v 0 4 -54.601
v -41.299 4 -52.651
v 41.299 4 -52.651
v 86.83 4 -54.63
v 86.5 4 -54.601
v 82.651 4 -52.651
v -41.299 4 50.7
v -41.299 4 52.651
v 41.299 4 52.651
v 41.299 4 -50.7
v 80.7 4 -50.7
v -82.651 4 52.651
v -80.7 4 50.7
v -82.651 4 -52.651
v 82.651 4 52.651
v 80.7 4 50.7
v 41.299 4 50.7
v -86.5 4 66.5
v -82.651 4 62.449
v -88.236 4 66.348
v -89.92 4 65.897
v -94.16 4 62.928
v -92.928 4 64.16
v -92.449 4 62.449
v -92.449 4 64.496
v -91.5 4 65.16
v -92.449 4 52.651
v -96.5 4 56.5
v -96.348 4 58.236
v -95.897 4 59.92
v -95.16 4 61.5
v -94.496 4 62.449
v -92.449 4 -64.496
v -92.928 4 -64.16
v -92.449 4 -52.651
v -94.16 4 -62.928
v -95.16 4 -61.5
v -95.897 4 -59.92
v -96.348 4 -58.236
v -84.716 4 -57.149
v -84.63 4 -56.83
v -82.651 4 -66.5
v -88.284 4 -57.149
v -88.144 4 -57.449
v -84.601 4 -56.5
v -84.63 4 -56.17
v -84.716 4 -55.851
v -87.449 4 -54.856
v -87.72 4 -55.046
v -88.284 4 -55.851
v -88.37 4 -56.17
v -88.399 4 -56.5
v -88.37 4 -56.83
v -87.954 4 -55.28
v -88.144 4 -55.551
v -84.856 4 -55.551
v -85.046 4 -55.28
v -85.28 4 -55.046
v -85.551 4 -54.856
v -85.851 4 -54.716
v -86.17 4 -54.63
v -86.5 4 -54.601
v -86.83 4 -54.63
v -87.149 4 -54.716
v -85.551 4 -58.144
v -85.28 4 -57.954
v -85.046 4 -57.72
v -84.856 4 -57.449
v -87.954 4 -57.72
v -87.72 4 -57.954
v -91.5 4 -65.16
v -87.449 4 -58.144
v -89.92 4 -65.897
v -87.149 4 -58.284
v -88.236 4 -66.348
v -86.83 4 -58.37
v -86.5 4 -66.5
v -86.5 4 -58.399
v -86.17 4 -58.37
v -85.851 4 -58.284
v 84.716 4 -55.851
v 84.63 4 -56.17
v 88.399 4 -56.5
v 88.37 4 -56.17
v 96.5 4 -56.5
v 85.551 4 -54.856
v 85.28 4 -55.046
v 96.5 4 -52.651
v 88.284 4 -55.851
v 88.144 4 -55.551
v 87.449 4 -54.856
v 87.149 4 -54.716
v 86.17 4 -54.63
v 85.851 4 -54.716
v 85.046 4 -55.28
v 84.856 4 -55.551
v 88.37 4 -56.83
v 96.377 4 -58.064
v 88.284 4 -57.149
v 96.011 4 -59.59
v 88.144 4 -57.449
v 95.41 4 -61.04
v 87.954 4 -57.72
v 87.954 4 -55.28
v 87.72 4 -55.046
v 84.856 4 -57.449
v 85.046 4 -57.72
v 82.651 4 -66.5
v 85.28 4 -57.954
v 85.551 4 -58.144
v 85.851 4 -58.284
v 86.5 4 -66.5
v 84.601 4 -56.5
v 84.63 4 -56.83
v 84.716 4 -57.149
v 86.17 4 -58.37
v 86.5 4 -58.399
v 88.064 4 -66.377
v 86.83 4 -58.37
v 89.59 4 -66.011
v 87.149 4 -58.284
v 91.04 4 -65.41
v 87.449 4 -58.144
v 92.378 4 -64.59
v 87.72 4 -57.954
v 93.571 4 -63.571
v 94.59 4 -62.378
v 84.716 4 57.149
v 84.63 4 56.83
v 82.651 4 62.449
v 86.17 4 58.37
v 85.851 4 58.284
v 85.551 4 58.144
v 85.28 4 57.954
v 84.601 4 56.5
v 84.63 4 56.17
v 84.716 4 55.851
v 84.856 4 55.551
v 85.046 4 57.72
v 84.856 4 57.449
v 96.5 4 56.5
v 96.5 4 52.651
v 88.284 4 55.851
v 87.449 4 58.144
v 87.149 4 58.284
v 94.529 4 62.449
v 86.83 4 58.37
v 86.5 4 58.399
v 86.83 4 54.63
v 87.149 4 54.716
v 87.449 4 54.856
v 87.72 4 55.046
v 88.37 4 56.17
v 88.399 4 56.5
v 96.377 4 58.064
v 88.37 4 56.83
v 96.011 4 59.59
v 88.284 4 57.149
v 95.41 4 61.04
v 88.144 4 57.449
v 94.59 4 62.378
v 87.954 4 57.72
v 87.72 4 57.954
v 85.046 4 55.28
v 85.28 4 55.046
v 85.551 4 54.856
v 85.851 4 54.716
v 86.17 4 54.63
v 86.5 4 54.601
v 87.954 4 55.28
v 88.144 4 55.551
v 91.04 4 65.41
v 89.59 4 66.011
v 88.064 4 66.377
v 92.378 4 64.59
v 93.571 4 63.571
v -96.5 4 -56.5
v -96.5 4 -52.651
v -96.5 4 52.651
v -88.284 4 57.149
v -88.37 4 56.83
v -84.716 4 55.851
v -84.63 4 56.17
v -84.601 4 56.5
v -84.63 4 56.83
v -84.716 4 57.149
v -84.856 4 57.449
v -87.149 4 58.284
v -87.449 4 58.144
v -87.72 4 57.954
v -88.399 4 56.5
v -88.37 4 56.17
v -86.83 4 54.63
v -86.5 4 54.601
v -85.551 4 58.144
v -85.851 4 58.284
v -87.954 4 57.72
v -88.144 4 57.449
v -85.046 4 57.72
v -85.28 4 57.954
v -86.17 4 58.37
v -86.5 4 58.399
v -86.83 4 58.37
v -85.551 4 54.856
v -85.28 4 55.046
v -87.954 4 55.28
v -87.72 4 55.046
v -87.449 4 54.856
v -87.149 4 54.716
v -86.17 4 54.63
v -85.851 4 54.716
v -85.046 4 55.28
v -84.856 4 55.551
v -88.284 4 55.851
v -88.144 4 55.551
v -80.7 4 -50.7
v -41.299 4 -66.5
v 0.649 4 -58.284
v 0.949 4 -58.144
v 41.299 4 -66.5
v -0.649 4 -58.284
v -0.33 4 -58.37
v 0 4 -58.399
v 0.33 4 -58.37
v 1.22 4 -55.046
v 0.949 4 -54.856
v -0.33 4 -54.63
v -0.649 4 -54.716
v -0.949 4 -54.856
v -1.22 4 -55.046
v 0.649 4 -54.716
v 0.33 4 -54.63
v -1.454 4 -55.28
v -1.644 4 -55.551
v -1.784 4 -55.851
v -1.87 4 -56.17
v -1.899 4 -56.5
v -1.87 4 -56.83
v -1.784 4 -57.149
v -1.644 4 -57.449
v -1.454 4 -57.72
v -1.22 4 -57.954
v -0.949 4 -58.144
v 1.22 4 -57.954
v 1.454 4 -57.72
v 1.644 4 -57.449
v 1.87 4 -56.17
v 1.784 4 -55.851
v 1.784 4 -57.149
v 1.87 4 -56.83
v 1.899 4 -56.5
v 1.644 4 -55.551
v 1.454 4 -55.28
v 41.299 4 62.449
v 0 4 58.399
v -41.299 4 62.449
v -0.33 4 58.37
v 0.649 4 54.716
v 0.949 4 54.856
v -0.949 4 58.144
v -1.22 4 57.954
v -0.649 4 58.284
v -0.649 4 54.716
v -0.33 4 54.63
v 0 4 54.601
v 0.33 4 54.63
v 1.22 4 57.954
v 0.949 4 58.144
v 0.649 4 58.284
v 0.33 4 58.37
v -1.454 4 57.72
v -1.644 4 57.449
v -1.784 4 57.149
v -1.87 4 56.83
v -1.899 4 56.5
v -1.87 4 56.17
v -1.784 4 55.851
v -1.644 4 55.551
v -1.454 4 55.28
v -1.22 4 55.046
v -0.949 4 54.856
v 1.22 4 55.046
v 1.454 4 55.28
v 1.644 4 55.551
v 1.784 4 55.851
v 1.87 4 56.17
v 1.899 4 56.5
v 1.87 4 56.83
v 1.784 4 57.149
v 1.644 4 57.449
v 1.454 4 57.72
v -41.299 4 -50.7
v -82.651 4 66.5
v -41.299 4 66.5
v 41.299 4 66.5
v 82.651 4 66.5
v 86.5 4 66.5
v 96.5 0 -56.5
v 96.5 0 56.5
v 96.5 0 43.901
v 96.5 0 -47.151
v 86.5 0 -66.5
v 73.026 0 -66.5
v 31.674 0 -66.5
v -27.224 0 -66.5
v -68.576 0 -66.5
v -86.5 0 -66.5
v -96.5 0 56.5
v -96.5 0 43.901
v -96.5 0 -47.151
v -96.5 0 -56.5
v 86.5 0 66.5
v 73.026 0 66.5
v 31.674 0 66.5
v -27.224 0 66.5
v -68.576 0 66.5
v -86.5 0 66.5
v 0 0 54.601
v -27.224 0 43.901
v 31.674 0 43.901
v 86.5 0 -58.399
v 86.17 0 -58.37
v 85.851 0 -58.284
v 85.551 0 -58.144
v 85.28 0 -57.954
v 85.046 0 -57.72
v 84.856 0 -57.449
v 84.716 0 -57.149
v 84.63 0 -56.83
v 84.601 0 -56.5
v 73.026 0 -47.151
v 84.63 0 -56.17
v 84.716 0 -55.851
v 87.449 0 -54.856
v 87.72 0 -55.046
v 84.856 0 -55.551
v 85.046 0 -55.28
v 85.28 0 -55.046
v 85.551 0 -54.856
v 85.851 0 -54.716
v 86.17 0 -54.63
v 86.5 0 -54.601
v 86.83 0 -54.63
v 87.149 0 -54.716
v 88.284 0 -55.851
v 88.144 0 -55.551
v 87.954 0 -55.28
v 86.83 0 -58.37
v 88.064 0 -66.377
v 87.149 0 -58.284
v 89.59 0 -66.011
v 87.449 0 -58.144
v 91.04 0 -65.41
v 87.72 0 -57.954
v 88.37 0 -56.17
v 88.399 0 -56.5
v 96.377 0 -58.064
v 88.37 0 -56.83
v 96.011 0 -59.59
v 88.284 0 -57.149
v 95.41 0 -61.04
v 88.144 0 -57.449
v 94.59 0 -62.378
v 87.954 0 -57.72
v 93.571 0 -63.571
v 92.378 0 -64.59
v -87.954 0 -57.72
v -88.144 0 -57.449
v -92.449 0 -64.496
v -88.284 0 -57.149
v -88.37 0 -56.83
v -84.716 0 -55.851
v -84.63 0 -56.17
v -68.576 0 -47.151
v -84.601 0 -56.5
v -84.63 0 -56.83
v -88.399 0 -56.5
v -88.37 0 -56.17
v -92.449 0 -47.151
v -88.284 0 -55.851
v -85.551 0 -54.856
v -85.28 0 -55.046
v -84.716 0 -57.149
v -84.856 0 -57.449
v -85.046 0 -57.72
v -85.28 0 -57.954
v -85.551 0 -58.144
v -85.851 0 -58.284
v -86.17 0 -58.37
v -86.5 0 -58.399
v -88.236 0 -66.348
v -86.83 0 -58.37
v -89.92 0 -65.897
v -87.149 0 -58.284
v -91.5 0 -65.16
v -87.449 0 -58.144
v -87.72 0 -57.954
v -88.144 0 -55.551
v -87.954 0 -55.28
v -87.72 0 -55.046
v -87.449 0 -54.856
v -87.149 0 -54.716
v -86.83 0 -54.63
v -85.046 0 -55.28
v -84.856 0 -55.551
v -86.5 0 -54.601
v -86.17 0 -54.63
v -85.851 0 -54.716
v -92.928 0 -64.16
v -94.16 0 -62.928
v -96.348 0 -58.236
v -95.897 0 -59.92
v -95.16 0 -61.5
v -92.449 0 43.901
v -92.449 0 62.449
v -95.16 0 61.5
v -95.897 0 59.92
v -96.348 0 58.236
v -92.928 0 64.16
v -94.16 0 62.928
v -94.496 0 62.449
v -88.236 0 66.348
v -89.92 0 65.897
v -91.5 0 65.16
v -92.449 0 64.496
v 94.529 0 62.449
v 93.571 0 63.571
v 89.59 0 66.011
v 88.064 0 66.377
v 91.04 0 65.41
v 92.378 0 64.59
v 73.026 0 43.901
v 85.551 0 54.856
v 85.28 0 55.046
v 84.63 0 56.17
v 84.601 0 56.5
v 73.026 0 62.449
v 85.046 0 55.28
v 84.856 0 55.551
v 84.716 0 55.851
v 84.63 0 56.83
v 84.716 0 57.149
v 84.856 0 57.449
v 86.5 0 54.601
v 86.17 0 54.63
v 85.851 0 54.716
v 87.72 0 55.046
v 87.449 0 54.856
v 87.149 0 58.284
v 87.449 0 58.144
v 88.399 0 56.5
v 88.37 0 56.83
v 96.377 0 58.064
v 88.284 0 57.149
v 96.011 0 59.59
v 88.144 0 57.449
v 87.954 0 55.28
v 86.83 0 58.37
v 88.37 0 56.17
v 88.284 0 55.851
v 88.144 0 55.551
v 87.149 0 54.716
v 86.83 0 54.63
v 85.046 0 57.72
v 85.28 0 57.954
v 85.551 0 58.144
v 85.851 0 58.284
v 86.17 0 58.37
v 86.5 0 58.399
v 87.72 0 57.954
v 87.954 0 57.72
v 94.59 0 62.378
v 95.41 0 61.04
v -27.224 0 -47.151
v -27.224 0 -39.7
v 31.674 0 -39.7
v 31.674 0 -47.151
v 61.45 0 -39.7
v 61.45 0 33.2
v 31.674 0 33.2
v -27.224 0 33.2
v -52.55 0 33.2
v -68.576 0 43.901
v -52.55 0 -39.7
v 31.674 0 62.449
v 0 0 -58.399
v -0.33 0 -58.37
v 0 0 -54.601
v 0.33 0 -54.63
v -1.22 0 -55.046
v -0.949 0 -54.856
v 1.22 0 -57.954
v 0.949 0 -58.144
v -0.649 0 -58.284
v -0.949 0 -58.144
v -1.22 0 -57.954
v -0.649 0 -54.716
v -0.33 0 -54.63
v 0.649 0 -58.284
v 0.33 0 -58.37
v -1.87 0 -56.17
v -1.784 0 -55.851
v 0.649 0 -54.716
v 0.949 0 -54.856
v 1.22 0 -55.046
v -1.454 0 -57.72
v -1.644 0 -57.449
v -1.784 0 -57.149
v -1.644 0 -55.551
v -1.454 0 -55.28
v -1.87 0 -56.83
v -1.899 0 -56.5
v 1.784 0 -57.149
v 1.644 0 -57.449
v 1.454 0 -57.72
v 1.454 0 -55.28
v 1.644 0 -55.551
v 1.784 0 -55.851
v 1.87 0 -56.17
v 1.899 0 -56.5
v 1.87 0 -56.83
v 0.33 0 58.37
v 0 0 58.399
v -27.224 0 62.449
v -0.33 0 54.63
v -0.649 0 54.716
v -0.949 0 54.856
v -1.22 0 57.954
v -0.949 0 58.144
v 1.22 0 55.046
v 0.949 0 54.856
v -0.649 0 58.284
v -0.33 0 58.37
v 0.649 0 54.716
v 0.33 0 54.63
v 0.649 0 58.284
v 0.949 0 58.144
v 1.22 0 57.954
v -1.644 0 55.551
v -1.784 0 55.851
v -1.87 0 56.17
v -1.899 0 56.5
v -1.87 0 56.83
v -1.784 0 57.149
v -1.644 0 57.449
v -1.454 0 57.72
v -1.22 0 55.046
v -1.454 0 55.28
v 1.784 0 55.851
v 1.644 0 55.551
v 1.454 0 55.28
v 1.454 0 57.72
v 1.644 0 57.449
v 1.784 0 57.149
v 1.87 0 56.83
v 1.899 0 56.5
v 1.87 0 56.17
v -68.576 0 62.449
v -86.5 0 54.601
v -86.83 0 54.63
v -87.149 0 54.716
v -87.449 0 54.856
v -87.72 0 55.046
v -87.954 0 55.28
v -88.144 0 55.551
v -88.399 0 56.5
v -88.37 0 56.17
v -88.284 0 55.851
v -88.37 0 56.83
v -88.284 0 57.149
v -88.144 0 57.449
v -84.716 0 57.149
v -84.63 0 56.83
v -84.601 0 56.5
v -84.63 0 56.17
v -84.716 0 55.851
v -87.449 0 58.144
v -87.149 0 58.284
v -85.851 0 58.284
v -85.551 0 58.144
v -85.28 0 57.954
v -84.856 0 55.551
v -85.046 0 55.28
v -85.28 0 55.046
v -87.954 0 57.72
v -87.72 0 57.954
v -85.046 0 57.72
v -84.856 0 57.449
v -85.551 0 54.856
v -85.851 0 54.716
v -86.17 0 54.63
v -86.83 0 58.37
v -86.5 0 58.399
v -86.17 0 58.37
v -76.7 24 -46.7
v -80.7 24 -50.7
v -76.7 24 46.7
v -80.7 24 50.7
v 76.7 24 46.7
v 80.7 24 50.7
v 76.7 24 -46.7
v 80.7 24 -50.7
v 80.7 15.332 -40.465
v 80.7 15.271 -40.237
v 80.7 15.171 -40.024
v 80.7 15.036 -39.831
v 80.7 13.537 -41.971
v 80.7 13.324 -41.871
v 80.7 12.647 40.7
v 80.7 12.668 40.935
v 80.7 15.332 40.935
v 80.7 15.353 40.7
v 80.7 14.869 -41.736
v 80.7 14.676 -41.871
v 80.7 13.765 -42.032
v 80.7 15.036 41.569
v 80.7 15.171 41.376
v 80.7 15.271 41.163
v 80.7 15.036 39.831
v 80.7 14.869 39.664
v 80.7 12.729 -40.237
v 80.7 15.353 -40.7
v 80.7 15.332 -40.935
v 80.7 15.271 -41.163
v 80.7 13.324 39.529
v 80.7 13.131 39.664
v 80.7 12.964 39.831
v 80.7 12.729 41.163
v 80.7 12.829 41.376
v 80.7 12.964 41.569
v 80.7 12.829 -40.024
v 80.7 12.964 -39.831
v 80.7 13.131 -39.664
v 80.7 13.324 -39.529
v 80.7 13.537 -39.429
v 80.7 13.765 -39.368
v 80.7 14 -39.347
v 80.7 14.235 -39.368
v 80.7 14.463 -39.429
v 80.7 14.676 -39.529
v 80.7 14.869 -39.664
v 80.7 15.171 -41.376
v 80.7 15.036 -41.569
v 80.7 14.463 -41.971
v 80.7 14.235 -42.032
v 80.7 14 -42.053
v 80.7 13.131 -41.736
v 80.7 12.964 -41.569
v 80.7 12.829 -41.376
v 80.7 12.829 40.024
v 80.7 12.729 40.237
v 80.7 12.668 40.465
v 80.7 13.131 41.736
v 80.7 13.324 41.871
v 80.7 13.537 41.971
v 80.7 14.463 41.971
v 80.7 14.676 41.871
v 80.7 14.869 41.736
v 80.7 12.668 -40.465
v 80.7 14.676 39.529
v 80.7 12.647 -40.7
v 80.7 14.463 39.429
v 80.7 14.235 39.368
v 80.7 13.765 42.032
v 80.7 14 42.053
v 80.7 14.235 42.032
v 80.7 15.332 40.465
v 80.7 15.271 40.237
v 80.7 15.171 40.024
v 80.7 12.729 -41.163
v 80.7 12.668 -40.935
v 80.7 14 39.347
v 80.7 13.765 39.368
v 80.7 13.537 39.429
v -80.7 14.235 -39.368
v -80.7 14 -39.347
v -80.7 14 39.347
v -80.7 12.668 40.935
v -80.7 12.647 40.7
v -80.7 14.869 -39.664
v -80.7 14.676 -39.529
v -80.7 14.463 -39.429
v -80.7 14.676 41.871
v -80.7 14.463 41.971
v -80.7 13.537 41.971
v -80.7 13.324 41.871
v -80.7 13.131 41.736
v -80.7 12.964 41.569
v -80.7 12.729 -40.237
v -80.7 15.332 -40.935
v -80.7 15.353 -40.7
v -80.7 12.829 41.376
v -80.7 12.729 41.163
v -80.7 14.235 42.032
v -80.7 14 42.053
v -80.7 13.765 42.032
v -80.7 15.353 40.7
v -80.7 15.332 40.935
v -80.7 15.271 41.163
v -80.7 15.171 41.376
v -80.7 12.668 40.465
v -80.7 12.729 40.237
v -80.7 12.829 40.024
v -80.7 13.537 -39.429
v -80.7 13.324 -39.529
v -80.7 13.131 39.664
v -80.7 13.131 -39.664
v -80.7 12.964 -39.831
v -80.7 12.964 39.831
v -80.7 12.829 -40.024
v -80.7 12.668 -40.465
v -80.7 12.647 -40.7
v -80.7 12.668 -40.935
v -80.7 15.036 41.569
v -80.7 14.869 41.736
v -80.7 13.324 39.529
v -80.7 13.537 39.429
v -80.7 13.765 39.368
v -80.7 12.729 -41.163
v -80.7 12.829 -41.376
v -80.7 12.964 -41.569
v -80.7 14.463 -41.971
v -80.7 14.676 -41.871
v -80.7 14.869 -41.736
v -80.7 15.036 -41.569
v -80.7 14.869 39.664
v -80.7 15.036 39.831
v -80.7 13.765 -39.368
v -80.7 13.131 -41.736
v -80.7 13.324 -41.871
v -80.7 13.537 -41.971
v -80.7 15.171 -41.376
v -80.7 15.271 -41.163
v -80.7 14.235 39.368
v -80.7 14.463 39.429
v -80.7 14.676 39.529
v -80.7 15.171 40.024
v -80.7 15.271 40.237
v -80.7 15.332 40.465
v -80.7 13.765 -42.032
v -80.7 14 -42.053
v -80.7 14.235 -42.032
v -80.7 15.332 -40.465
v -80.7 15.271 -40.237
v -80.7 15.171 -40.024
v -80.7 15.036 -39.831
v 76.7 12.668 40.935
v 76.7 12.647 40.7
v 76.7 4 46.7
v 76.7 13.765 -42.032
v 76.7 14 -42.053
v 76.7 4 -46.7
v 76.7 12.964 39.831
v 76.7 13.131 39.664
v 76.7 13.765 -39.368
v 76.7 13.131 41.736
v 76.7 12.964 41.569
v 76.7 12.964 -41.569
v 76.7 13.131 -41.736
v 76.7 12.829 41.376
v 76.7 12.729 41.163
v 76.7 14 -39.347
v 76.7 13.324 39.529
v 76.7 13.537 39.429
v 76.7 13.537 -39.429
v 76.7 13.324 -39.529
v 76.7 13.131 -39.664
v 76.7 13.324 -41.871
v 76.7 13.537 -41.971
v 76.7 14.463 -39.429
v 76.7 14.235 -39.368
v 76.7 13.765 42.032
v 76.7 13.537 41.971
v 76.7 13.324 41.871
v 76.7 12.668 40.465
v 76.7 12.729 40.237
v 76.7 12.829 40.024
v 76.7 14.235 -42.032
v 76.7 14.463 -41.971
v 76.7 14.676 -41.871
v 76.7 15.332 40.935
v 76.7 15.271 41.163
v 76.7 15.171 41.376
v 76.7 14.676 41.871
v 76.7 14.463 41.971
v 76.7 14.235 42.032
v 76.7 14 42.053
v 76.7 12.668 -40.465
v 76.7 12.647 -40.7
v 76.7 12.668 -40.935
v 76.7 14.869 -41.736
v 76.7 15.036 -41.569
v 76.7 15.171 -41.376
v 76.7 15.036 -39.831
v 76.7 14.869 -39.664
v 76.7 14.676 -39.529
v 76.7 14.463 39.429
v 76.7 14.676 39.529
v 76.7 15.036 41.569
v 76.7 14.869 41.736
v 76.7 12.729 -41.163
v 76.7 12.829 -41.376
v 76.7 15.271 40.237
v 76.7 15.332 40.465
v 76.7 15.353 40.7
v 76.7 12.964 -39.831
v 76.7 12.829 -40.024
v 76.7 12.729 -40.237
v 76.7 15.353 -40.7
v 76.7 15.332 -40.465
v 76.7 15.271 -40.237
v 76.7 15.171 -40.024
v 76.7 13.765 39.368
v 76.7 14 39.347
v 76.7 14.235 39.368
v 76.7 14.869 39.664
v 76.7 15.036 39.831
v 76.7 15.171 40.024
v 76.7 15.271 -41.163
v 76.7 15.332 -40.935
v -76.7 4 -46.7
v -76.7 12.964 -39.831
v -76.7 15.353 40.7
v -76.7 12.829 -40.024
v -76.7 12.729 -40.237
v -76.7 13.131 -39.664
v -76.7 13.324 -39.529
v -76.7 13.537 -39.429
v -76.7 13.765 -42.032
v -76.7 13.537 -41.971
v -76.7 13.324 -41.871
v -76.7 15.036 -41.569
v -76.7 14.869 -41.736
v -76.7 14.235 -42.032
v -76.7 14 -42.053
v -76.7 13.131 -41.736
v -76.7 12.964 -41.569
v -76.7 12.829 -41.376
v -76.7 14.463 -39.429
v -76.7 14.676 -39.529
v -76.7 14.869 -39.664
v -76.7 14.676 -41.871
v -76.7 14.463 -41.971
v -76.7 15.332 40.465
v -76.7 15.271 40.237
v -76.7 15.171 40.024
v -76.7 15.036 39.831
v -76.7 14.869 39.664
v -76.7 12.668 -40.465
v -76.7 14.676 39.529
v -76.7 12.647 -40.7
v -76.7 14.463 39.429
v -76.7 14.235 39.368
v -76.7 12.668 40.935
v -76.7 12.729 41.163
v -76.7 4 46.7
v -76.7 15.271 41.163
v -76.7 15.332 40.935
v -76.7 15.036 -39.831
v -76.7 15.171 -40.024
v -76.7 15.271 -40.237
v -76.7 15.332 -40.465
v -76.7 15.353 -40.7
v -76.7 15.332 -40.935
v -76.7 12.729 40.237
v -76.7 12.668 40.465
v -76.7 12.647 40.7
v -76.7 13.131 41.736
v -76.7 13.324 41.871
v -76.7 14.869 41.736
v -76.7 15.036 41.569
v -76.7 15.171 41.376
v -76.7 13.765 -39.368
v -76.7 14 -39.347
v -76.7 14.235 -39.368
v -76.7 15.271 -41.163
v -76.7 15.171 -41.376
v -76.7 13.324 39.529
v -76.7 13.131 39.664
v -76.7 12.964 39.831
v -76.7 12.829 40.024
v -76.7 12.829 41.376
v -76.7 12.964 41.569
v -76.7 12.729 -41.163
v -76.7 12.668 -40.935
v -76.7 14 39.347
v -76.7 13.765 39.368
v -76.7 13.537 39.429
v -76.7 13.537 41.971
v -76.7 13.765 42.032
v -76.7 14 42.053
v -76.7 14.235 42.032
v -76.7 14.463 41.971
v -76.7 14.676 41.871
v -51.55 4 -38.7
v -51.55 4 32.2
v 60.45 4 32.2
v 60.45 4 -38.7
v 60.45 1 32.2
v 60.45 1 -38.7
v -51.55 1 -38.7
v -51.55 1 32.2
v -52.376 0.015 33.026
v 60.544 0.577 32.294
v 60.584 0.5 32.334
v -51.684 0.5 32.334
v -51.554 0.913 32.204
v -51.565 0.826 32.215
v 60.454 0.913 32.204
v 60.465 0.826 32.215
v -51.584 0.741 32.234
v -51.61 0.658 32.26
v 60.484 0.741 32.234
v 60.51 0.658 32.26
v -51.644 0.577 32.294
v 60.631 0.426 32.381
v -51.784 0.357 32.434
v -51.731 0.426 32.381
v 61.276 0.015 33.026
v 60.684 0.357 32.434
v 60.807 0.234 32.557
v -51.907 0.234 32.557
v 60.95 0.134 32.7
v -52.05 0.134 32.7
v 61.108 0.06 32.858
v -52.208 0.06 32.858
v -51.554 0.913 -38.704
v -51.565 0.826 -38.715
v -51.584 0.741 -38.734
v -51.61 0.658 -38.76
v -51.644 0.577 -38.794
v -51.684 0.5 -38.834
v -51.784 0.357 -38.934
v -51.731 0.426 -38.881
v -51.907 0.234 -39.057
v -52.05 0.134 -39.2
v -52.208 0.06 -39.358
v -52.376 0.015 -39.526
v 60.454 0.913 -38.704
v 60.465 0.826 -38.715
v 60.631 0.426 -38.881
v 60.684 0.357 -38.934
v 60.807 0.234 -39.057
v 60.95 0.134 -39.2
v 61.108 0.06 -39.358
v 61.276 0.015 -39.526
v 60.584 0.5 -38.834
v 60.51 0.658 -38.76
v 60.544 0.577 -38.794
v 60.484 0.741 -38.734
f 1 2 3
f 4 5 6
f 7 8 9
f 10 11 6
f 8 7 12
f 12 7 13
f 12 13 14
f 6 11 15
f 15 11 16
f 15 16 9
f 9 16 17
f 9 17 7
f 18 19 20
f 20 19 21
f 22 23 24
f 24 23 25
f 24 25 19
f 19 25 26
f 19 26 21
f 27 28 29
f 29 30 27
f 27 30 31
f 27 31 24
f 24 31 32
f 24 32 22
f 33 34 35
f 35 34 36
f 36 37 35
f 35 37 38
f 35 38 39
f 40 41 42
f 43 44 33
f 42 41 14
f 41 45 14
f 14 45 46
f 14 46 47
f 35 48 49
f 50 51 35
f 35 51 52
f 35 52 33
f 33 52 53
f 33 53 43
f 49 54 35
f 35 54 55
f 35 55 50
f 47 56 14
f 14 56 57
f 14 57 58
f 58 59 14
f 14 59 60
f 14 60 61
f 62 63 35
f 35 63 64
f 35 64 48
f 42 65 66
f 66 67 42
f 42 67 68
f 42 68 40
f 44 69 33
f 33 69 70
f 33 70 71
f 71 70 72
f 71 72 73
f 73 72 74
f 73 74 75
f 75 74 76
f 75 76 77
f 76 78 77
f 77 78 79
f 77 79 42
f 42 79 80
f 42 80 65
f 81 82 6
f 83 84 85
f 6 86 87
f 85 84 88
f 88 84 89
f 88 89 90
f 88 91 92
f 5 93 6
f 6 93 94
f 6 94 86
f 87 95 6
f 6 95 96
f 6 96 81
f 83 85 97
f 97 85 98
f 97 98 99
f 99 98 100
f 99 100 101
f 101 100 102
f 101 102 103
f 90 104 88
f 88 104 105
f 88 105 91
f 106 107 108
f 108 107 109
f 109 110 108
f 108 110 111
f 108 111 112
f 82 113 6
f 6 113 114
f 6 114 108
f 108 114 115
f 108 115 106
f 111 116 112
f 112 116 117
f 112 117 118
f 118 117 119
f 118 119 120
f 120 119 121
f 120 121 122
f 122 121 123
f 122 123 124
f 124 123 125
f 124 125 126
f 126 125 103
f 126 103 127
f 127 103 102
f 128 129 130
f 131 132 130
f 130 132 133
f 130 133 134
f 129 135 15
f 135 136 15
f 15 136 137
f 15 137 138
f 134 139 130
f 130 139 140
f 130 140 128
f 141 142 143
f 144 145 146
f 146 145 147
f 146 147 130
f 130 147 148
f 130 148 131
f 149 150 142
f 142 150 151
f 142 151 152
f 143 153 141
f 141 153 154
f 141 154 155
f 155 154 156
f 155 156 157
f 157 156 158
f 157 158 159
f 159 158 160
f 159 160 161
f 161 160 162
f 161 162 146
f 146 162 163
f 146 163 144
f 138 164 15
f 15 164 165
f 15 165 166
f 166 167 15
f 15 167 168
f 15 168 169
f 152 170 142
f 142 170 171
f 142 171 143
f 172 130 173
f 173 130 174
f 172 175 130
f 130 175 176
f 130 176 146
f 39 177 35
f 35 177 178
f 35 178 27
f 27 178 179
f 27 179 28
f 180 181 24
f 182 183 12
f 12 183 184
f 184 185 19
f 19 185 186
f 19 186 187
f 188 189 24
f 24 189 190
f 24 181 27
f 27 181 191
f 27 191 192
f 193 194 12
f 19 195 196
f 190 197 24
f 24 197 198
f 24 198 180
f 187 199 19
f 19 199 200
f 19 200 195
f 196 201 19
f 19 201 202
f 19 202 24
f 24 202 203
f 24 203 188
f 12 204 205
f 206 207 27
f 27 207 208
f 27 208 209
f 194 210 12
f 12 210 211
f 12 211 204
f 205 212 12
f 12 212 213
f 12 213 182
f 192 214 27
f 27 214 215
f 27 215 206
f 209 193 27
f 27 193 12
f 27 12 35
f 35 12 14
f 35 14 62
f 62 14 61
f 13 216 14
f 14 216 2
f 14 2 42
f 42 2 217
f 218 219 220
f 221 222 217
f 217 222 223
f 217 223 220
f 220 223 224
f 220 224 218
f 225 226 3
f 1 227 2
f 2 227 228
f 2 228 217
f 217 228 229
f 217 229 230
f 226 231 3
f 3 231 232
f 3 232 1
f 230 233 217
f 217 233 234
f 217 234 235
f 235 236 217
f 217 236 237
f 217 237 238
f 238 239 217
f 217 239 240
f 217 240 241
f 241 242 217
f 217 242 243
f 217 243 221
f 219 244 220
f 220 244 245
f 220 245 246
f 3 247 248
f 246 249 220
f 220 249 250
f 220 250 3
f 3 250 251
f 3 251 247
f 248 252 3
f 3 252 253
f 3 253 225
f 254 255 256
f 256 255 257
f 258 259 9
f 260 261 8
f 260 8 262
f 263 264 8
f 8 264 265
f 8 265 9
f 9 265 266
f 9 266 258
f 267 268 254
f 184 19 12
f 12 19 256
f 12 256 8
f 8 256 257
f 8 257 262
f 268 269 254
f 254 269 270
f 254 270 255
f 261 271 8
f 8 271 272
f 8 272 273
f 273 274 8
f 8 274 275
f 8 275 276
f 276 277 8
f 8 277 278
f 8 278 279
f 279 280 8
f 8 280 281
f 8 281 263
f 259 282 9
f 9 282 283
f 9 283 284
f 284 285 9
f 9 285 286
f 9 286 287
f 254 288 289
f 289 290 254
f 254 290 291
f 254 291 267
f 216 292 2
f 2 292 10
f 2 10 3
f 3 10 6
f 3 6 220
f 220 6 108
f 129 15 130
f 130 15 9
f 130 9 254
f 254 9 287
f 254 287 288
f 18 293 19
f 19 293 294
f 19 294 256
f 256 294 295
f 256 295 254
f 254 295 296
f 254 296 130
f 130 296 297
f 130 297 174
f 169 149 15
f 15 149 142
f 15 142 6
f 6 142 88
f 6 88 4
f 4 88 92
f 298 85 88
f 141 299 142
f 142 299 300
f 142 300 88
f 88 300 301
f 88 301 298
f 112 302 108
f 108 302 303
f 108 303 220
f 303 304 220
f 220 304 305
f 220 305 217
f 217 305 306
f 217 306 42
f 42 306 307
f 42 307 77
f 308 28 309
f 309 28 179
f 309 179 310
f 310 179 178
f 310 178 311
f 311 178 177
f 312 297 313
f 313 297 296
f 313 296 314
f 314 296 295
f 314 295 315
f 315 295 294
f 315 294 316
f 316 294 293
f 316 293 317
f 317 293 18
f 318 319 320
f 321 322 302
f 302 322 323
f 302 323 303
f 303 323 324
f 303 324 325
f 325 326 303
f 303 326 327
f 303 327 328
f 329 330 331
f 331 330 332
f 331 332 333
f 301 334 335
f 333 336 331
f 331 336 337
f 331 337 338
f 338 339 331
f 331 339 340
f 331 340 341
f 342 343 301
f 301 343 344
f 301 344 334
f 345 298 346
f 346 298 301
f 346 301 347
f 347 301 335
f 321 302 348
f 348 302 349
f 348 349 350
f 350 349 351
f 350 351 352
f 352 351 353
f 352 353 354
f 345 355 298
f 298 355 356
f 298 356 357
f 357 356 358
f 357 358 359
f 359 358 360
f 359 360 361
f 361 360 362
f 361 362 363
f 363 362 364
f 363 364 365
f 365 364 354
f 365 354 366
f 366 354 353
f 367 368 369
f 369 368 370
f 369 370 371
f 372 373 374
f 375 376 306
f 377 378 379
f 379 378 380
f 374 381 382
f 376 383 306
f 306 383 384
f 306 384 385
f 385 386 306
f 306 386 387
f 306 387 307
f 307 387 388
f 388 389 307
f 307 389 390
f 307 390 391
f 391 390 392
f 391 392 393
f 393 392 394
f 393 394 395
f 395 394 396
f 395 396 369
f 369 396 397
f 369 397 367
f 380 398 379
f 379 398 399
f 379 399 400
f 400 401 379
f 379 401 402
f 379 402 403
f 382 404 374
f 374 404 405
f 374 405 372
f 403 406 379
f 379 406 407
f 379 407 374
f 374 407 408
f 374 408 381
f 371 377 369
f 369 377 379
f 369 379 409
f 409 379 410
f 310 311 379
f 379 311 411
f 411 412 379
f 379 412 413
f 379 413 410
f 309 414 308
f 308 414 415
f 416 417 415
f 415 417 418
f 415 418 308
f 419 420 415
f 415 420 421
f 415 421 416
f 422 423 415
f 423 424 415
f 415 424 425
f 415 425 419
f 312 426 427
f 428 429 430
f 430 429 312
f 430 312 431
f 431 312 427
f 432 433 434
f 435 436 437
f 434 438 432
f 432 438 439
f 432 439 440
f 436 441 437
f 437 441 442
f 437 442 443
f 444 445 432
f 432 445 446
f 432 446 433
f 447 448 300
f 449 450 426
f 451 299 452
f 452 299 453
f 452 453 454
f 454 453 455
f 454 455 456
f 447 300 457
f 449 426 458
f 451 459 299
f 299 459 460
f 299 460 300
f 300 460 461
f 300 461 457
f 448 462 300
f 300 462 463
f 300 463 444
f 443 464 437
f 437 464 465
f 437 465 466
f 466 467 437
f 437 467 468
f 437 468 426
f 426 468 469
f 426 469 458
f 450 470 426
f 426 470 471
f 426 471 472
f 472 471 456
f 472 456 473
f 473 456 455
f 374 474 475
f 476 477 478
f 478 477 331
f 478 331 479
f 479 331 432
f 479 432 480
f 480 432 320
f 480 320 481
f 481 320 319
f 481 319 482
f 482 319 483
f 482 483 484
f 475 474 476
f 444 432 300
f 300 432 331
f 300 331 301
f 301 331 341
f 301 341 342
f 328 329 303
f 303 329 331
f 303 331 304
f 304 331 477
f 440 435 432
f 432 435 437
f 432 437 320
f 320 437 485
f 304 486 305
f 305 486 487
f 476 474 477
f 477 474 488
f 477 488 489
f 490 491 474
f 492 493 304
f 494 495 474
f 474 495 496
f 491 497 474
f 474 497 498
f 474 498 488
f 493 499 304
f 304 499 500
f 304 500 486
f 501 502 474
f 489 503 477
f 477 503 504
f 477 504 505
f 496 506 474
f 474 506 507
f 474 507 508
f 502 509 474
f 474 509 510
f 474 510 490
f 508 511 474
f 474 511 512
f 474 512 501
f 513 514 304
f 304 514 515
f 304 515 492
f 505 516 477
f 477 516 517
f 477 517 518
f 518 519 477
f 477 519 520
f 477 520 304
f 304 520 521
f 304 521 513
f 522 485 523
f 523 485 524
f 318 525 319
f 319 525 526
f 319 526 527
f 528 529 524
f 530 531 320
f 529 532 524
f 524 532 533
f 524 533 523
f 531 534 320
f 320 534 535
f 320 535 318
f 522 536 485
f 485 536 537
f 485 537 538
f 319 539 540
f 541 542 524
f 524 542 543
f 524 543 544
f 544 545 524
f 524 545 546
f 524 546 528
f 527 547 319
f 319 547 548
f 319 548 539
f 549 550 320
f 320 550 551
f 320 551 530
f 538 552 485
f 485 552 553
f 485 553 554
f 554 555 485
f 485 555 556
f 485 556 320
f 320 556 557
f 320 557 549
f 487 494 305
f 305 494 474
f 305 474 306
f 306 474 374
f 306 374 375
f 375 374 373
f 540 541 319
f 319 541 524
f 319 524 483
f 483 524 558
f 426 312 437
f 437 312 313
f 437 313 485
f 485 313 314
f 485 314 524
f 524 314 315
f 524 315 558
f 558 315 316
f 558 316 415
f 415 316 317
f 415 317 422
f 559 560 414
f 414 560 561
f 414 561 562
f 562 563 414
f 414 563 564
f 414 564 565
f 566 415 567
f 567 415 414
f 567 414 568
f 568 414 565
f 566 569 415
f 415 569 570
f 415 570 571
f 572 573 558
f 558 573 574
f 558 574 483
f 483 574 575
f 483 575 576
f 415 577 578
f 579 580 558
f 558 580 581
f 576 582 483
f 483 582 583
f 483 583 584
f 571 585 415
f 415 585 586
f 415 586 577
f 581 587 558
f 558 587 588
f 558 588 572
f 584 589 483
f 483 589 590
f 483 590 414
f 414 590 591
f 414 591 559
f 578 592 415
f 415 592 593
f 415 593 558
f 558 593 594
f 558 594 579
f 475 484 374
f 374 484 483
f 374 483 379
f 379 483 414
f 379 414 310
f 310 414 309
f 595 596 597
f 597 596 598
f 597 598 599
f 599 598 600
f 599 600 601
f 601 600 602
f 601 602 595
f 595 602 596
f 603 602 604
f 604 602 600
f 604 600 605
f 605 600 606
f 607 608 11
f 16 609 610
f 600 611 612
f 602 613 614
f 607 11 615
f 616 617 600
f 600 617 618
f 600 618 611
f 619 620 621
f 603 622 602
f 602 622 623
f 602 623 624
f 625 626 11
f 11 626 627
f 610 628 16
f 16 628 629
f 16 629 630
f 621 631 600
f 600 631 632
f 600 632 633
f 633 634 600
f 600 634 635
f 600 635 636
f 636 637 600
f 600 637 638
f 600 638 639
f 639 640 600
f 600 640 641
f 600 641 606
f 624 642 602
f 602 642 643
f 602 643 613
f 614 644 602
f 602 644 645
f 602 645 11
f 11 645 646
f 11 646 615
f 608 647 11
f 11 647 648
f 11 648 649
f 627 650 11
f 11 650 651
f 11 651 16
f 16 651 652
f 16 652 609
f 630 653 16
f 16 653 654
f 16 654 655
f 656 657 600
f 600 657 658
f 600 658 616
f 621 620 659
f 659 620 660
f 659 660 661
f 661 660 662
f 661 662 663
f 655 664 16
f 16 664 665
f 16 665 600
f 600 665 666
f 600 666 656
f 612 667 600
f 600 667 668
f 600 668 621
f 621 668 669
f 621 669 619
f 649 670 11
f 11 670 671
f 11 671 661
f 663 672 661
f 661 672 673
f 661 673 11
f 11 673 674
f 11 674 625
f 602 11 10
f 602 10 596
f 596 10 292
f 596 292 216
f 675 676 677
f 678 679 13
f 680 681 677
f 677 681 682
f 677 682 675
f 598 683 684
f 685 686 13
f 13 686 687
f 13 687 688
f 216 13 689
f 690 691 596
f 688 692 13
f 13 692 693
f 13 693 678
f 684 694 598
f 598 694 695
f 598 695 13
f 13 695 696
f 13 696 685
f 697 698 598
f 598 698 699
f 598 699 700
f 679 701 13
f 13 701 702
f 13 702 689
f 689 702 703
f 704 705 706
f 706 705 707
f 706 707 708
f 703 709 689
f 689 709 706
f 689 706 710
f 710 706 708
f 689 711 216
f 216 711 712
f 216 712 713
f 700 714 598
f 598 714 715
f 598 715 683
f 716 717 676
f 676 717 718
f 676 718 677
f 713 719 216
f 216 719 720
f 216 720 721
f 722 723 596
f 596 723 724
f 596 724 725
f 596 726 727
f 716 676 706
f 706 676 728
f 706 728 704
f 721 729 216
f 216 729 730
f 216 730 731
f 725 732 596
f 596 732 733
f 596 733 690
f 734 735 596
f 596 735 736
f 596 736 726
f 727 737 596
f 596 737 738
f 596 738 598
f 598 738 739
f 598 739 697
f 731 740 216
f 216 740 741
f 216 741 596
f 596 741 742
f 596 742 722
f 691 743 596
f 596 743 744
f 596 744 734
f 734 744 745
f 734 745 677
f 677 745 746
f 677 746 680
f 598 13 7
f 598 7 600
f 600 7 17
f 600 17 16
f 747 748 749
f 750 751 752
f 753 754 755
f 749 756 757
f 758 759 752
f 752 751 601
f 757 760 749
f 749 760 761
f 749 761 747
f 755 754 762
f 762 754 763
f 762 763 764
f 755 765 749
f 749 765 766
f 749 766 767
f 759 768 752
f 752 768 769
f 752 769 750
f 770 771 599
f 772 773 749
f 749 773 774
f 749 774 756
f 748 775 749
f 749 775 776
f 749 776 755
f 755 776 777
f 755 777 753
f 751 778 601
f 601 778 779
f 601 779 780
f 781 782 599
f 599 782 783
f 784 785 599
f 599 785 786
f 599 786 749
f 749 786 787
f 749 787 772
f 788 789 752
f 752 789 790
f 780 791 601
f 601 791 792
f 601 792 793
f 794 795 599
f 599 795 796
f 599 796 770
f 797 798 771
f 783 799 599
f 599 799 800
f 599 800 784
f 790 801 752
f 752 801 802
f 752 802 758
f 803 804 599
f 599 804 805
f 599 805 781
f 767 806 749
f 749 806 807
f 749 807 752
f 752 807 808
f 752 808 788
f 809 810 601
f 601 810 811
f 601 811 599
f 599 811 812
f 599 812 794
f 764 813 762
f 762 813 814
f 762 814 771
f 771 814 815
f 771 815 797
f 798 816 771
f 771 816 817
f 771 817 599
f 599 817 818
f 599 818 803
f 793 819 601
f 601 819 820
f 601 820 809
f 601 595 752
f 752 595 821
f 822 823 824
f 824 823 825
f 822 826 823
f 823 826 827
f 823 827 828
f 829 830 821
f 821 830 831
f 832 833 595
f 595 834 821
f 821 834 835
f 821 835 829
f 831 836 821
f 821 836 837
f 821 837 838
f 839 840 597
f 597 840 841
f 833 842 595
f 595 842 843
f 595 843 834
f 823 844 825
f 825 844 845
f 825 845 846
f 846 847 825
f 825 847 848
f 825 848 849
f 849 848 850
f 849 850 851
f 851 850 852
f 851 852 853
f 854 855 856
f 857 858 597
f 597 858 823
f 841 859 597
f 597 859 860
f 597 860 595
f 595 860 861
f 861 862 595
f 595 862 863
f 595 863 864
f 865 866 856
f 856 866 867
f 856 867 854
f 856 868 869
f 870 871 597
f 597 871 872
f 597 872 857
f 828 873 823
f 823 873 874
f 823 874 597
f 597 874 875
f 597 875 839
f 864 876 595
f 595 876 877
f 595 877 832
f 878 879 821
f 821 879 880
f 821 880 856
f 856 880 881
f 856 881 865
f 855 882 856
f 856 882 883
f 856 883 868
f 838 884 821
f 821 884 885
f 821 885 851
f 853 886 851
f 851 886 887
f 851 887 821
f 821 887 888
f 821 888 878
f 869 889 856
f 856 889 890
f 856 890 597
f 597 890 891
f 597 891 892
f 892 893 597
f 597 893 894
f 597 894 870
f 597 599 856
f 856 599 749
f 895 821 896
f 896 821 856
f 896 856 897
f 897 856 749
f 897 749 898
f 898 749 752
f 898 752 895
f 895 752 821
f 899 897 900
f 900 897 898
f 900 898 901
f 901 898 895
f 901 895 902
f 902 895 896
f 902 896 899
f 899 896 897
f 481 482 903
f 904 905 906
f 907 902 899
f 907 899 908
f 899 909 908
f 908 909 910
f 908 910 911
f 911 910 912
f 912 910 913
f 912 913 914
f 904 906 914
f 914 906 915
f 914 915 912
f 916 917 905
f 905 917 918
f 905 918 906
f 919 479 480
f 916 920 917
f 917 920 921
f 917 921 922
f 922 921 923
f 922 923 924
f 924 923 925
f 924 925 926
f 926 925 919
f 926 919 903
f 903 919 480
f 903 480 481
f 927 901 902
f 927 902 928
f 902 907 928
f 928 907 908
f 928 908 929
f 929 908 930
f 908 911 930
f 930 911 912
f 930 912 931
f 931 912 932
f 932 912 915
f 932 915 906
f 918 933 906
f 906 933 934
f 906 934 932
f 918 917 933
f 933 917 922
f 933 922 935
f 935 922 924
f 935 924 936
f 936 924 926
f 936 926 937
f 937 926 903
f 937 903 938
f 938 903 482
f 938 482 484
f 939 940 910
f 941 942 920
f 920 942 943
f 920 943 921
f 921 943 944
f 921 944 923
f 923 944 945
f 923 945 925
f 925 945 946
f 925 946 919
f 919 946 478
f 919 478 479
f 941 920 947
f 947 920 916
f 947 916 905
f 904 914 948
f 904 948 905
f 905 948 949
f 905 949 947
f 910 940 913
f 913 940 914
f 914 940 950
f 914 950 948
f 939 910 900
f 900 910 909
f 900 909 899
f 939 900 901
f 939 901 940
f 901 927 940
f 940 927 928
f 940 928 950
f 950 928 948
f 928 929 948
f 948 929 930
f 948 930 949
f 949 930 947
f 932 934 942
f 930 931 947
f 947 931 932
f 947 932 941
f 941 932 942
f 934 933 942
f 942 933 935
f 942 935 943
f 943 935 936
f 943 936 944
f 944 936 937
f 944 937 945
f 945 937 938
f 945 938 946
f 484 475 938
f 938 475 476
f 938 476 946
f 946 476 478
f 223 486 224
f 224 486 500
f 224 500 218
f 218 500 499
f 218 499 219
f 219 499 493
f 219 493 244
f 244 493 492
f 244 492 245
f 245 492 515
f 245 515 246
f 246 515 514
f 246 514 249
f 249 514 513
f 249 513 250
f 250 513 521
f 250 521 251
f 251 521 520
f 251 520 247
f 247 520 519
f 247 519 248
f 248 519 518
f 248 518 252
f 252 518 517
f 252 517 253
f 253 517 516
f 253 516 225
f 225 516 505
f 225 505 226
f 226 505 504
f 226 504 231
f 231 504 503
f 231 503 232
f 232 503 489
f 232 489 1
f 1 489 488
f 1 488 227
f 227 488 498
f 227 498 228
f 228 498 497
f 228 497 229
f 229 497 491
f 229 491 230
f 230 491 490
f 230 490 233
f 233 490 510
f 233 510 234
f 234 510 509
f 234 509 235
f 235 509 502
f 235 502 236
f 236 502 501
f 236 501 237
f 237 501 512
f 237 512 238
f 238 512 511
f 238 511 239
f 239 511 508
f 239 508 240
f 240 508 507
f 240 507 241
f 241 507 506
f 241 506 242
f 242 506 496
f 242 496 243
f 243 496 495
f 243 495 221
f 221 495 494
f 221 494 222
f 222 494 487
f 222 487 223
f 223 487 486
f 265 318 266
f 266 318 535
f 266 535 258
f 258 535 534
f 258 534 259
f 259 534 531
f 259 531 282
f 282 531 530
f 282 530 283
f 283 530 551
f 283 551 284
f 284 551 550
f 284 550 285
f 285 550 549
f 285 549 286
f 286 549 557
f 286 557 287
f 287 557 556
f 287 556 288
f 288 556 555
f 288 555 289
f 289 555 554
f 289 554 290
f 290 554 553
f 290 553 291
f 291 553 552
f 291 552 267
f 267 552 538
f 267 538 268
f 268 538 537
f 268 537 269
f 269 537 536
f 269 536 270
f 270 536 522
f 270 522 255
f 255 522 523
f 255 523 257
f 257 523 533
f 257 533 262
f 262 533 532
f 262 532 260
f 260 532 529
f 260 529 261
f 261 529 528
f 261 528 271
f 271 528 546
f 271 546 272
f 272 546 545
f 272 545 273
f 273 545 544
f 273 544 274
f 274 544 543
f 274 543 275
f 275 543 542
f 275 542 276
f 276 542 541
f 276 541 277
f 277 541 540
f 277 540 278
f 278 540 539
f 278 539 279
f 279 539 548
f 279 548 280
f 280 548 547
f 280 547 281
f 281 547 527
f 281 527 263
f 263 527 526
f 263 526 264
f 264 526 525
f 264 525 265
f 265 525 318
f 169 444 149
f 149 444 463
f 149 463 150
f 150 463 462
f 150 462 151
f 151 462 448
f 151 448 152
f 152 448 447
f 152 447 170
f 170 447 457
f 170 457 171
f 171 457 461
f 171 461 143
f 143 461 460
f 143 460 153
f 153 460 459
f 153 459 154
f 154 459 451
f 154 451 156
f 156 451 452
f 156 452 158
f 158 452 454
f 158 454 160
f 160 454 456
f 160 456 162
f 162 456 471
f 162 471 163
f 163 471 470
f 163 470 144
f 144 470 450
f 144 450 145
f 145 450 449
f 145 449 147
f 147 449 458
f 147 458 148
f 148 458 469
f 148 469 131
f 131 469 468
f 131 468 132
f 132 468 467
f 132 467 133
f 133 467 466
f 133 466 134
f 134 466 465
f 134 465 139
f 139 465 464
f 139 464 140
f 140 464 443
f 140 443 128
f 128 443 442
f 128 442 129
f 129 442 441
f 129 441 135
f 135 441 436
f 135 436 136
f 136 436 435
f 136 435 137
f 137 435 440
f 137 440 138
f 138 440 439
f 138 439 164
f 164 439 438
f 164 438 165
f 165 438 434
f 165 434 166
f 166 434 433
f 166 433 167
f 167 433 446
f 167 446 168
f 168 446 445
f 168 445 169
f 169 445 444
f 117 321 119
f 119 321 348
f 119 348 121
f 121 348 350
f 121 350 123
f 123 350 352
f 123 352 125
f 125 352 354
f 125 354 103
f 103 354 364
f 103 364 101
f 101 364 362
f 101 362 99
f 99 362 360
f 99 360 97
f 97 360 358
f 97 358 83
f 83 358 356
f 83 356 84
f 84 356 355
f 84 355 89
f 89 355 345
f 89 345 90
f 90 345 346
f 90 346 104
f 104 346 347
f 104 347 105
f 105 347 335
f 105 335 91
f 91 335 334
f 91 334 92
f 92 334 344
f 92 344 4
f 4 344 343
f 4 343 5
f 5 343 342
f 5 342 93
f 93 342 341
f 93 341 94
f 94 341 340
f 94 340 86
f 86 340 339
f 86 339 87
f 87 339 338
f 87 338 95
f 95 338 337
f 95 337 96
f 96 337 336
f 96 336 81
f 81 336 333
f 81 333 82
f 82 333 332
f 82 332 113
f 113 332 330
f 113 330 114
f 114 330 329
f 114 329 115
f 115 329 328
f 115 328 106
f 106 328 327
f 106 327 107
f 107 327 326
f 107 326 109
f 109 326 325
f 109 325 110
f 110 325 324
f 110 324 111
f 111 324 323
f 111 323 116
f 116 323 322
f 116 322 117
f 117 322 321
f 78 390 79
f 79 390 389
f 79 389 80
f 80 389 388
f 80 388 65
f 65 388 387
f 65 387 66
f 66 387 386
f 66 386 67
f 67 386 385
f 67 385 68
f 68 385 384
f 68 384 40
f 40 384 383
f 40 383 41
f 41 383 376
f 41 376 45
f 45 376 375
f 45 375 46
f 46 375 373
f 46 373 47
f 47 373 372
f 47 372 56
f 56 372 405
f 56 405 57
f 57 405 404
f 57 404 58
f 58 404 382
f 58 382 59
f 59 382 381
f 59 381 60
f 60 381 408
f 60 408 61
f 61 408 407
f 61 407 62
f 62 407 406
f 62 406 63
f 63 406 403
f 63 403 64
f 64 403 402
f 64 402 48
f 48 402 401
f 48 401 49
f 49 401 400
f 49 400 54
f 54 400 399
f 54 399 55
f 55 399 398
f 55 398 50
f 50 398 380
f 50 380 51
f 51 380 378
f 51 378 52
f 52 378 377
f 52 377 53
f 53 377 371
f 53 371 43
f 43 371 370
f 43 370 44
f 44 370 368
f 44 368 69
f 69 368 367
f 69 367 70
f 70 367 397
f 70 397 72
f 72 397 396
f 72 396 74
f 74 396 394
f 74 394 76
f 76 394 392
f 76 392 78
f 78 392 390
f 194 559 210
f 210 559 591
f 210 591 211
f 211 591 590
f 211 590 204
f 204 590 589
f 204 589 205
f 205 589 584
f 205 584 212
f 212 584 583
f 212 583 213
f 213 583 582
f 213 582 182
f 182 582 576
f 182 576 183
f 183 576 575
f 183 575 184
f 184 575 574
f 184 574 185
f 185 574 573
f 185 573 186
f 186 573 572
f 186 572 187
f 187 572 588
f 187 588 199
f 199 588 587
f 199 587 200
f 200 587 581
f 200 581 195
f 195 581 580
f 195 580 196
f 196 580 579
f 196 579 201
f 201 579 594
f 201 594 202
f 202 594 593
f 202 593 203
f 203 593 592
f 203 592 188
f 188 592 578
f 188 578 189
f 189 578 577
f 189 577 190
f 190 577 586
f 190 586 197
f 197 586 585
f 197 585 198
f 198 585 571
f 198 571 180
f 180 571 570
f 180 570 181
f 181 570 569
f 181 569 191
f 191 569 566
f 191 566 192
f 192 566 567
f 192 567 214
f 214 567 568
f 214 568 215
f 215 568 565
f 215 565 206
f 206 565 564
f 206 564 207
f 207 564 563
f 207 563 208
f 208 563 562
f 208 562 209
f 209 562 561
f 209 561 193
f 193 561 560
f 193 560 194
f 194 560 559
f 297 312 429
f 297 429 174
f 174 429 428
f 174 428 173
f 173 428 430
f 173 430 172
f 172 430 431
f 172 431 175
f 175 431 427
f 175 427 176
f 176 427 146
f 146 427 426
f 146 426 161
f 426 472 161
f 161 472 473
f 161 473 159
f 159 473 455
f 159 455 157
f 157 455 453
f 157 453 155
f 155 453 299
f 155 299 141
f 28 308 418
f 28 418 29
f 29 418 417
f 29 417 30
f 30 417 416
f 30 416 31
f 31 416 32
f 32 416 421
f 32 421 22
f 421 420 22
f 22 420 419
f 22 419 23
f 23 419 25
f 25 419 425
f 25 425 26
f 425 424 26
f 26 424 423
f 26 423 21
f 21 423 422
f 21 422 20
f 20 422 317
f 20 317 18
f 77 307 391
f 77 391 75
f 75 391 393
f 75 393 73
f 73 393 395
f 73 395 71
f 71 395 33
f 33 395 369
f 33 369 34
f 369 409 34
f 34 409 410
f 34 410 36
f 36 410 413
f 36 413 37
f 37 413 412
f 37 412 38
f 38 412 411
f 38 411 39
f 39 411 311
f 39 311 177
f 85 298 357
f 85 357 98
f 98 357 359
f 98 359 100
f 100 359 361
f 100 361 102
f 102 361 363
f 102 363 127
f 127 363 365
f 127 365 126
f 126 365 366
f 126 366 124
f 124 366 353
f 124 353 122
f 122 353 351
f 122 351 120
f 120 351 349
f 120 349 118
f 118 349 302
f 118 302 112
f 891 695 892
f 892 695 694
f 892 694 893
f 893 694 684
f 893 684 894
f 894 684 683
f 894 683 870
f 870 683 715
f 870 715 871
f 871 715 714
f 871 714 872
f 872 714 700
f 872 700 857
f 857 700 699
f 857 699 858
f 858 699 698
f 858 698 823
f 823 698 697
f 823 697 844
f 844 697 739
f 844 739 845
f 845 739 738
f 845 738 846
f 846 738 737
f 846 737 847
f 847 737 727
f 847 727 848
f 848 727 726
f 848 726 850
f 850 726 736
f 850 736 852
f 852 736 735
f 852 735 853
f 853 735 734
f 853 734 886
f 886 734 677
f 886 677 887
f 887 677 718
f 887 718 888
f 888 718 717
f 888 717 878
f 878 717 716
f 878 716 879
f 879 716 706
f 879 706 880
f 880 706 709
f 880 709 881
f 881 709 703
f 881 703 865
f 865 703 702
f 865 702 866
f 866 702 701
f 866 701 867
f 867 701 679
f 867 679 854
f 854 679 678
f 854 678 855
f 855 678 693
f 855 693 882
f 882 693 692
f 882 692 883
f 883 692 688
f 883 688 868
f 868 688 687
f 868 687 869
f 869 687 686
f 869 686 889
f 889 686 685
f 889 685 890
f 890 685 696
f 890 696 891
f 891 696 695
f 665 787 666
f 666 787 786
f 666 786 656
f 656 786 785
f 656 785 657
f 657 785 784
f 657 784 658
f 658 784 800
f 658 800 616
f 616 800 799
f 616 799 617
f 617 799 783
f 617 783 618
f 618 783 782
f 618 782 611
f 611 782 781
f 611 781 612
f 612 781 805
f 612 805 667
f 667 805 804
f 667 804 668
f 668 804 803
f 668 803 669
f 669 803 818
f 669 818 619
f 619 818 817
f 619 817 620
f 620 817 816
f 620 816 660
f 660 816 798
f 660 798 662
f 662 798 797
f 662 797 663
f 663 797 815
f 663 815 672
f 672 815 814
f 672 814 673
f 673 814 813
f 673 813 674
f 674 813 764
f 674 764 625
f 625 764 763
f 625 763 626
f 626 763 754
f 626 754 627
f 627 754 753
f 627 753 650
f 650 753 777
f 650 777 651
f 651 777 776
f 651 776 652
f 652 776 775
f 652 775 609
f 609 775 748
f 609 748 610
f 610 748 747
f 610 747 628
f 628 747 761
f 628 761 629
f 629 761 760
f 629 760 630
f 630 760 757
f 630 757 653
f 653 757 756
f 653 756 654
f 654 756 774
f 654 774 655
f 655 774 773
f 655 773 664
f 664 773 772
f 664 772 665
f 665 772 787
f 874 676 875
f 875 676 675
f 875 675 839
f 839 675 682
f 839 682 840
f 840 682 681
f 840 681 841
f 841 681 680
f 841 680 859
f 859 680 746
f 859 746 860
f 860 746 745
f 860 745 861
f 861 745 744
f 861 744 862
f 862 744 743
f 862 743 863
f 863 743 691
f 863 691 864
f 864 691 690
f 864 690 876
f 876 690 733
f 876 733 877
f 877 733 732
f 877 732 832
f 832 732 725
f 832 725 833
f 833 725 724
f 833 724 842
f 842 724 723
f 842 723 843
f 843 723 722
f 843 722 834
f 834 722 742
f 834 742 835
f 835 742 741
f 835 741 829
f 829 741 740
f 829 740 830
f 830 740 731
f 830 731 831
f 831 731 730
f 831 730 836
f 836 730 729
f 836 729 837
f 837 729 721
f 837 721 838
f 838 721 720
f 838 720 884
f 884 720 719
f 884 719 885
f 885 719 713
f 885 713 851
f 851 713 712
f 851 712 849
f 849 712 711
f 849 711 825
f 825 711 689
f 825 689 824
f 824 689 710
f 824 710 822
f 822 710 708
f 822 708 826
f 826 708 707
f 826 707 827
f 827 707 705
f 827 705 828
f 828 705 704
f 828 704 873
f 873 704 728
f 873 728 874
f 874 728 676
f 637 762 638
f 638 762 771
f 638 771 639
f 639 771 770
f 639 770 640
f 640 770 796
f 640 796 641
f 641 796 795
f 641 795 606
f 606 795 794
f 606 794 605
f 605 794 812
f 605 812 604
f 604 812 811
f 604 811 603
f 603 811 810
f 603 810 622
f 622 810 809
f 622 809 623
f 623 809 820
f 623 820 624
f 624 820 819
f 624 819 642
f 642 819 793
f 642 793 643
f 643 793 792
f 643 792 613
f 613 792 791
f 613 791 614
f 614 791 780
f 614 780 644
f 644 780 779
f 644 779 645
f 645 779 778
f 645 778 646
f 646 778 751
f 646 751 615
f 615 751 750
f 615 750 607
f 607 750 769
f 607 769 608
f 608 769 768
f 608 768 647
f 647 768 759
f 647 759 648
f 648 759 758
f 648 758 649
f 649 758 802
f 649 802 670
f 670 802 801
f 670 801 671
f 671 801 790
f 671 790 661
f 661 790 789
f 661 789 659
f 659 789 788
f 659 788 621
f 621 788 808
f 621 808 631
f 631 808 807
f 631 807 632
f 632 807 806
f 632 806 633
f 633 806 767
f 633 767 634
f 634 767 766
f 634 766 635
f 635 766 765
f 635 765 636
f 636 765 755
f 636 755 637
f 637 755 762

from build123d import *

# Parameters (mm, degrees)
SKETCH1_W                    = 193
SKETCH1_H                    = 133
BOSS_EXTRUDE1_DEPTH          = 4
SKETCH2_W                    = 161.4
SKETCH2_H                    = 101.4
SKETCH2_W_2                  = 153.4
SKETCH2_H_2                  = 93.4
EXTRUDE_THIN1_DEPTH          = 20
SKETCH3_W                    = 112
SKETCH3_H                    = 70.9
CUT_EXTRUDE3_DEPTH           = 15
FILLET1_R                    = 1
F_25_0_1495_DIAMETER_HOLE2_D = 3.7973
FILLET3_R                    = 10
TAP_DRILL_FOR_6_32_TAP1_D    = 2.7051


with BuildPart() as part:
    # Sketch1 → Boss-Extrude1 (new body)
    with BuildSketch(Plane(origin=(0, 0, 0), x_dir=(1, 0, 0), z_dir=(0, 1, 0))):
        Rectangle(SKETCH1_W, SKETCH1_H)
    extrude(amount=BOSS_EXTRUDE1_DEPTH)

    # Sketch2 → Extrude-Thin1 (add)
    with BuildSketch(Plane(origin=(0, 4, 0), x_dir=(1, 0, 0), z_dir=(0, 1, 0))):
        Rectangle(SKETCH2_W, SKETCH2_H)
        Rectangle(SKETCH2_W_2, SKETCH2_H_2, mode=Mode.SUBTRACT)
    extrude(amount=EXTRUDE_THIN1_DEPTH)

    # Sketch3 → Cut-Extrude3 (cut)
    with BuildSketch(Plane.XZ):
        with Locations((4.45, -3.25)):
            Rectangle(SKETCH3_W, SKETCH3_H)
    extrude(amount=-CUT_EXTRUDE3_DEPTH, mode=Mode.SUBTRACT)

    # Fillet1
    fillet1_edges = [part.edges().sort_by_distance(p)[0] for p in [
        (60.45, 0, -3.25),
        (4.45, 0, 32.2),
        (-51.55, 0, -3.25),
        (4.45, 0, -38.7),
    ]]
    fillet(fillet1_edges, radius=FILLET1_R)

    # #25 (0.1495) Diameter Hole2 (through all)
    with Locations(Plane(origin=(0, 0, 0), x_dir=(-1, 0, 0), z_dir=(0, -1, 0))):
        with Locations((86.5, -56.5), (86.5, 56.5), (-86.5, 56.5), (-86.5, -56.5), (0, -56.5), (0, 56.5)):
            Hole(F_25_0_1495_DIAMETER_HOLE2_D / 2)

    # Fillet3
    fillet3_edges = [part.edges().sort_by_distance(p)[0] for p in [
        (96.5, 2, 66.5),
        (-96.5, 2, 66.5),
        (-96.5, 2, -66.5),
        (96.5, 2, -66.5),
    ]]
    fillet(fillet3_edges, radius=FILLET3_R)

    # Tap Drill for #6-32 Tap1 (through all)
    with Locations(Plane.ZY.offset(80.7)):
        with Locations((-40.7, 14), (40.7, 14)):
            Hole(TAP_DRILL_FOR_6_32_TAP1_D / 2)


solid = part.part
